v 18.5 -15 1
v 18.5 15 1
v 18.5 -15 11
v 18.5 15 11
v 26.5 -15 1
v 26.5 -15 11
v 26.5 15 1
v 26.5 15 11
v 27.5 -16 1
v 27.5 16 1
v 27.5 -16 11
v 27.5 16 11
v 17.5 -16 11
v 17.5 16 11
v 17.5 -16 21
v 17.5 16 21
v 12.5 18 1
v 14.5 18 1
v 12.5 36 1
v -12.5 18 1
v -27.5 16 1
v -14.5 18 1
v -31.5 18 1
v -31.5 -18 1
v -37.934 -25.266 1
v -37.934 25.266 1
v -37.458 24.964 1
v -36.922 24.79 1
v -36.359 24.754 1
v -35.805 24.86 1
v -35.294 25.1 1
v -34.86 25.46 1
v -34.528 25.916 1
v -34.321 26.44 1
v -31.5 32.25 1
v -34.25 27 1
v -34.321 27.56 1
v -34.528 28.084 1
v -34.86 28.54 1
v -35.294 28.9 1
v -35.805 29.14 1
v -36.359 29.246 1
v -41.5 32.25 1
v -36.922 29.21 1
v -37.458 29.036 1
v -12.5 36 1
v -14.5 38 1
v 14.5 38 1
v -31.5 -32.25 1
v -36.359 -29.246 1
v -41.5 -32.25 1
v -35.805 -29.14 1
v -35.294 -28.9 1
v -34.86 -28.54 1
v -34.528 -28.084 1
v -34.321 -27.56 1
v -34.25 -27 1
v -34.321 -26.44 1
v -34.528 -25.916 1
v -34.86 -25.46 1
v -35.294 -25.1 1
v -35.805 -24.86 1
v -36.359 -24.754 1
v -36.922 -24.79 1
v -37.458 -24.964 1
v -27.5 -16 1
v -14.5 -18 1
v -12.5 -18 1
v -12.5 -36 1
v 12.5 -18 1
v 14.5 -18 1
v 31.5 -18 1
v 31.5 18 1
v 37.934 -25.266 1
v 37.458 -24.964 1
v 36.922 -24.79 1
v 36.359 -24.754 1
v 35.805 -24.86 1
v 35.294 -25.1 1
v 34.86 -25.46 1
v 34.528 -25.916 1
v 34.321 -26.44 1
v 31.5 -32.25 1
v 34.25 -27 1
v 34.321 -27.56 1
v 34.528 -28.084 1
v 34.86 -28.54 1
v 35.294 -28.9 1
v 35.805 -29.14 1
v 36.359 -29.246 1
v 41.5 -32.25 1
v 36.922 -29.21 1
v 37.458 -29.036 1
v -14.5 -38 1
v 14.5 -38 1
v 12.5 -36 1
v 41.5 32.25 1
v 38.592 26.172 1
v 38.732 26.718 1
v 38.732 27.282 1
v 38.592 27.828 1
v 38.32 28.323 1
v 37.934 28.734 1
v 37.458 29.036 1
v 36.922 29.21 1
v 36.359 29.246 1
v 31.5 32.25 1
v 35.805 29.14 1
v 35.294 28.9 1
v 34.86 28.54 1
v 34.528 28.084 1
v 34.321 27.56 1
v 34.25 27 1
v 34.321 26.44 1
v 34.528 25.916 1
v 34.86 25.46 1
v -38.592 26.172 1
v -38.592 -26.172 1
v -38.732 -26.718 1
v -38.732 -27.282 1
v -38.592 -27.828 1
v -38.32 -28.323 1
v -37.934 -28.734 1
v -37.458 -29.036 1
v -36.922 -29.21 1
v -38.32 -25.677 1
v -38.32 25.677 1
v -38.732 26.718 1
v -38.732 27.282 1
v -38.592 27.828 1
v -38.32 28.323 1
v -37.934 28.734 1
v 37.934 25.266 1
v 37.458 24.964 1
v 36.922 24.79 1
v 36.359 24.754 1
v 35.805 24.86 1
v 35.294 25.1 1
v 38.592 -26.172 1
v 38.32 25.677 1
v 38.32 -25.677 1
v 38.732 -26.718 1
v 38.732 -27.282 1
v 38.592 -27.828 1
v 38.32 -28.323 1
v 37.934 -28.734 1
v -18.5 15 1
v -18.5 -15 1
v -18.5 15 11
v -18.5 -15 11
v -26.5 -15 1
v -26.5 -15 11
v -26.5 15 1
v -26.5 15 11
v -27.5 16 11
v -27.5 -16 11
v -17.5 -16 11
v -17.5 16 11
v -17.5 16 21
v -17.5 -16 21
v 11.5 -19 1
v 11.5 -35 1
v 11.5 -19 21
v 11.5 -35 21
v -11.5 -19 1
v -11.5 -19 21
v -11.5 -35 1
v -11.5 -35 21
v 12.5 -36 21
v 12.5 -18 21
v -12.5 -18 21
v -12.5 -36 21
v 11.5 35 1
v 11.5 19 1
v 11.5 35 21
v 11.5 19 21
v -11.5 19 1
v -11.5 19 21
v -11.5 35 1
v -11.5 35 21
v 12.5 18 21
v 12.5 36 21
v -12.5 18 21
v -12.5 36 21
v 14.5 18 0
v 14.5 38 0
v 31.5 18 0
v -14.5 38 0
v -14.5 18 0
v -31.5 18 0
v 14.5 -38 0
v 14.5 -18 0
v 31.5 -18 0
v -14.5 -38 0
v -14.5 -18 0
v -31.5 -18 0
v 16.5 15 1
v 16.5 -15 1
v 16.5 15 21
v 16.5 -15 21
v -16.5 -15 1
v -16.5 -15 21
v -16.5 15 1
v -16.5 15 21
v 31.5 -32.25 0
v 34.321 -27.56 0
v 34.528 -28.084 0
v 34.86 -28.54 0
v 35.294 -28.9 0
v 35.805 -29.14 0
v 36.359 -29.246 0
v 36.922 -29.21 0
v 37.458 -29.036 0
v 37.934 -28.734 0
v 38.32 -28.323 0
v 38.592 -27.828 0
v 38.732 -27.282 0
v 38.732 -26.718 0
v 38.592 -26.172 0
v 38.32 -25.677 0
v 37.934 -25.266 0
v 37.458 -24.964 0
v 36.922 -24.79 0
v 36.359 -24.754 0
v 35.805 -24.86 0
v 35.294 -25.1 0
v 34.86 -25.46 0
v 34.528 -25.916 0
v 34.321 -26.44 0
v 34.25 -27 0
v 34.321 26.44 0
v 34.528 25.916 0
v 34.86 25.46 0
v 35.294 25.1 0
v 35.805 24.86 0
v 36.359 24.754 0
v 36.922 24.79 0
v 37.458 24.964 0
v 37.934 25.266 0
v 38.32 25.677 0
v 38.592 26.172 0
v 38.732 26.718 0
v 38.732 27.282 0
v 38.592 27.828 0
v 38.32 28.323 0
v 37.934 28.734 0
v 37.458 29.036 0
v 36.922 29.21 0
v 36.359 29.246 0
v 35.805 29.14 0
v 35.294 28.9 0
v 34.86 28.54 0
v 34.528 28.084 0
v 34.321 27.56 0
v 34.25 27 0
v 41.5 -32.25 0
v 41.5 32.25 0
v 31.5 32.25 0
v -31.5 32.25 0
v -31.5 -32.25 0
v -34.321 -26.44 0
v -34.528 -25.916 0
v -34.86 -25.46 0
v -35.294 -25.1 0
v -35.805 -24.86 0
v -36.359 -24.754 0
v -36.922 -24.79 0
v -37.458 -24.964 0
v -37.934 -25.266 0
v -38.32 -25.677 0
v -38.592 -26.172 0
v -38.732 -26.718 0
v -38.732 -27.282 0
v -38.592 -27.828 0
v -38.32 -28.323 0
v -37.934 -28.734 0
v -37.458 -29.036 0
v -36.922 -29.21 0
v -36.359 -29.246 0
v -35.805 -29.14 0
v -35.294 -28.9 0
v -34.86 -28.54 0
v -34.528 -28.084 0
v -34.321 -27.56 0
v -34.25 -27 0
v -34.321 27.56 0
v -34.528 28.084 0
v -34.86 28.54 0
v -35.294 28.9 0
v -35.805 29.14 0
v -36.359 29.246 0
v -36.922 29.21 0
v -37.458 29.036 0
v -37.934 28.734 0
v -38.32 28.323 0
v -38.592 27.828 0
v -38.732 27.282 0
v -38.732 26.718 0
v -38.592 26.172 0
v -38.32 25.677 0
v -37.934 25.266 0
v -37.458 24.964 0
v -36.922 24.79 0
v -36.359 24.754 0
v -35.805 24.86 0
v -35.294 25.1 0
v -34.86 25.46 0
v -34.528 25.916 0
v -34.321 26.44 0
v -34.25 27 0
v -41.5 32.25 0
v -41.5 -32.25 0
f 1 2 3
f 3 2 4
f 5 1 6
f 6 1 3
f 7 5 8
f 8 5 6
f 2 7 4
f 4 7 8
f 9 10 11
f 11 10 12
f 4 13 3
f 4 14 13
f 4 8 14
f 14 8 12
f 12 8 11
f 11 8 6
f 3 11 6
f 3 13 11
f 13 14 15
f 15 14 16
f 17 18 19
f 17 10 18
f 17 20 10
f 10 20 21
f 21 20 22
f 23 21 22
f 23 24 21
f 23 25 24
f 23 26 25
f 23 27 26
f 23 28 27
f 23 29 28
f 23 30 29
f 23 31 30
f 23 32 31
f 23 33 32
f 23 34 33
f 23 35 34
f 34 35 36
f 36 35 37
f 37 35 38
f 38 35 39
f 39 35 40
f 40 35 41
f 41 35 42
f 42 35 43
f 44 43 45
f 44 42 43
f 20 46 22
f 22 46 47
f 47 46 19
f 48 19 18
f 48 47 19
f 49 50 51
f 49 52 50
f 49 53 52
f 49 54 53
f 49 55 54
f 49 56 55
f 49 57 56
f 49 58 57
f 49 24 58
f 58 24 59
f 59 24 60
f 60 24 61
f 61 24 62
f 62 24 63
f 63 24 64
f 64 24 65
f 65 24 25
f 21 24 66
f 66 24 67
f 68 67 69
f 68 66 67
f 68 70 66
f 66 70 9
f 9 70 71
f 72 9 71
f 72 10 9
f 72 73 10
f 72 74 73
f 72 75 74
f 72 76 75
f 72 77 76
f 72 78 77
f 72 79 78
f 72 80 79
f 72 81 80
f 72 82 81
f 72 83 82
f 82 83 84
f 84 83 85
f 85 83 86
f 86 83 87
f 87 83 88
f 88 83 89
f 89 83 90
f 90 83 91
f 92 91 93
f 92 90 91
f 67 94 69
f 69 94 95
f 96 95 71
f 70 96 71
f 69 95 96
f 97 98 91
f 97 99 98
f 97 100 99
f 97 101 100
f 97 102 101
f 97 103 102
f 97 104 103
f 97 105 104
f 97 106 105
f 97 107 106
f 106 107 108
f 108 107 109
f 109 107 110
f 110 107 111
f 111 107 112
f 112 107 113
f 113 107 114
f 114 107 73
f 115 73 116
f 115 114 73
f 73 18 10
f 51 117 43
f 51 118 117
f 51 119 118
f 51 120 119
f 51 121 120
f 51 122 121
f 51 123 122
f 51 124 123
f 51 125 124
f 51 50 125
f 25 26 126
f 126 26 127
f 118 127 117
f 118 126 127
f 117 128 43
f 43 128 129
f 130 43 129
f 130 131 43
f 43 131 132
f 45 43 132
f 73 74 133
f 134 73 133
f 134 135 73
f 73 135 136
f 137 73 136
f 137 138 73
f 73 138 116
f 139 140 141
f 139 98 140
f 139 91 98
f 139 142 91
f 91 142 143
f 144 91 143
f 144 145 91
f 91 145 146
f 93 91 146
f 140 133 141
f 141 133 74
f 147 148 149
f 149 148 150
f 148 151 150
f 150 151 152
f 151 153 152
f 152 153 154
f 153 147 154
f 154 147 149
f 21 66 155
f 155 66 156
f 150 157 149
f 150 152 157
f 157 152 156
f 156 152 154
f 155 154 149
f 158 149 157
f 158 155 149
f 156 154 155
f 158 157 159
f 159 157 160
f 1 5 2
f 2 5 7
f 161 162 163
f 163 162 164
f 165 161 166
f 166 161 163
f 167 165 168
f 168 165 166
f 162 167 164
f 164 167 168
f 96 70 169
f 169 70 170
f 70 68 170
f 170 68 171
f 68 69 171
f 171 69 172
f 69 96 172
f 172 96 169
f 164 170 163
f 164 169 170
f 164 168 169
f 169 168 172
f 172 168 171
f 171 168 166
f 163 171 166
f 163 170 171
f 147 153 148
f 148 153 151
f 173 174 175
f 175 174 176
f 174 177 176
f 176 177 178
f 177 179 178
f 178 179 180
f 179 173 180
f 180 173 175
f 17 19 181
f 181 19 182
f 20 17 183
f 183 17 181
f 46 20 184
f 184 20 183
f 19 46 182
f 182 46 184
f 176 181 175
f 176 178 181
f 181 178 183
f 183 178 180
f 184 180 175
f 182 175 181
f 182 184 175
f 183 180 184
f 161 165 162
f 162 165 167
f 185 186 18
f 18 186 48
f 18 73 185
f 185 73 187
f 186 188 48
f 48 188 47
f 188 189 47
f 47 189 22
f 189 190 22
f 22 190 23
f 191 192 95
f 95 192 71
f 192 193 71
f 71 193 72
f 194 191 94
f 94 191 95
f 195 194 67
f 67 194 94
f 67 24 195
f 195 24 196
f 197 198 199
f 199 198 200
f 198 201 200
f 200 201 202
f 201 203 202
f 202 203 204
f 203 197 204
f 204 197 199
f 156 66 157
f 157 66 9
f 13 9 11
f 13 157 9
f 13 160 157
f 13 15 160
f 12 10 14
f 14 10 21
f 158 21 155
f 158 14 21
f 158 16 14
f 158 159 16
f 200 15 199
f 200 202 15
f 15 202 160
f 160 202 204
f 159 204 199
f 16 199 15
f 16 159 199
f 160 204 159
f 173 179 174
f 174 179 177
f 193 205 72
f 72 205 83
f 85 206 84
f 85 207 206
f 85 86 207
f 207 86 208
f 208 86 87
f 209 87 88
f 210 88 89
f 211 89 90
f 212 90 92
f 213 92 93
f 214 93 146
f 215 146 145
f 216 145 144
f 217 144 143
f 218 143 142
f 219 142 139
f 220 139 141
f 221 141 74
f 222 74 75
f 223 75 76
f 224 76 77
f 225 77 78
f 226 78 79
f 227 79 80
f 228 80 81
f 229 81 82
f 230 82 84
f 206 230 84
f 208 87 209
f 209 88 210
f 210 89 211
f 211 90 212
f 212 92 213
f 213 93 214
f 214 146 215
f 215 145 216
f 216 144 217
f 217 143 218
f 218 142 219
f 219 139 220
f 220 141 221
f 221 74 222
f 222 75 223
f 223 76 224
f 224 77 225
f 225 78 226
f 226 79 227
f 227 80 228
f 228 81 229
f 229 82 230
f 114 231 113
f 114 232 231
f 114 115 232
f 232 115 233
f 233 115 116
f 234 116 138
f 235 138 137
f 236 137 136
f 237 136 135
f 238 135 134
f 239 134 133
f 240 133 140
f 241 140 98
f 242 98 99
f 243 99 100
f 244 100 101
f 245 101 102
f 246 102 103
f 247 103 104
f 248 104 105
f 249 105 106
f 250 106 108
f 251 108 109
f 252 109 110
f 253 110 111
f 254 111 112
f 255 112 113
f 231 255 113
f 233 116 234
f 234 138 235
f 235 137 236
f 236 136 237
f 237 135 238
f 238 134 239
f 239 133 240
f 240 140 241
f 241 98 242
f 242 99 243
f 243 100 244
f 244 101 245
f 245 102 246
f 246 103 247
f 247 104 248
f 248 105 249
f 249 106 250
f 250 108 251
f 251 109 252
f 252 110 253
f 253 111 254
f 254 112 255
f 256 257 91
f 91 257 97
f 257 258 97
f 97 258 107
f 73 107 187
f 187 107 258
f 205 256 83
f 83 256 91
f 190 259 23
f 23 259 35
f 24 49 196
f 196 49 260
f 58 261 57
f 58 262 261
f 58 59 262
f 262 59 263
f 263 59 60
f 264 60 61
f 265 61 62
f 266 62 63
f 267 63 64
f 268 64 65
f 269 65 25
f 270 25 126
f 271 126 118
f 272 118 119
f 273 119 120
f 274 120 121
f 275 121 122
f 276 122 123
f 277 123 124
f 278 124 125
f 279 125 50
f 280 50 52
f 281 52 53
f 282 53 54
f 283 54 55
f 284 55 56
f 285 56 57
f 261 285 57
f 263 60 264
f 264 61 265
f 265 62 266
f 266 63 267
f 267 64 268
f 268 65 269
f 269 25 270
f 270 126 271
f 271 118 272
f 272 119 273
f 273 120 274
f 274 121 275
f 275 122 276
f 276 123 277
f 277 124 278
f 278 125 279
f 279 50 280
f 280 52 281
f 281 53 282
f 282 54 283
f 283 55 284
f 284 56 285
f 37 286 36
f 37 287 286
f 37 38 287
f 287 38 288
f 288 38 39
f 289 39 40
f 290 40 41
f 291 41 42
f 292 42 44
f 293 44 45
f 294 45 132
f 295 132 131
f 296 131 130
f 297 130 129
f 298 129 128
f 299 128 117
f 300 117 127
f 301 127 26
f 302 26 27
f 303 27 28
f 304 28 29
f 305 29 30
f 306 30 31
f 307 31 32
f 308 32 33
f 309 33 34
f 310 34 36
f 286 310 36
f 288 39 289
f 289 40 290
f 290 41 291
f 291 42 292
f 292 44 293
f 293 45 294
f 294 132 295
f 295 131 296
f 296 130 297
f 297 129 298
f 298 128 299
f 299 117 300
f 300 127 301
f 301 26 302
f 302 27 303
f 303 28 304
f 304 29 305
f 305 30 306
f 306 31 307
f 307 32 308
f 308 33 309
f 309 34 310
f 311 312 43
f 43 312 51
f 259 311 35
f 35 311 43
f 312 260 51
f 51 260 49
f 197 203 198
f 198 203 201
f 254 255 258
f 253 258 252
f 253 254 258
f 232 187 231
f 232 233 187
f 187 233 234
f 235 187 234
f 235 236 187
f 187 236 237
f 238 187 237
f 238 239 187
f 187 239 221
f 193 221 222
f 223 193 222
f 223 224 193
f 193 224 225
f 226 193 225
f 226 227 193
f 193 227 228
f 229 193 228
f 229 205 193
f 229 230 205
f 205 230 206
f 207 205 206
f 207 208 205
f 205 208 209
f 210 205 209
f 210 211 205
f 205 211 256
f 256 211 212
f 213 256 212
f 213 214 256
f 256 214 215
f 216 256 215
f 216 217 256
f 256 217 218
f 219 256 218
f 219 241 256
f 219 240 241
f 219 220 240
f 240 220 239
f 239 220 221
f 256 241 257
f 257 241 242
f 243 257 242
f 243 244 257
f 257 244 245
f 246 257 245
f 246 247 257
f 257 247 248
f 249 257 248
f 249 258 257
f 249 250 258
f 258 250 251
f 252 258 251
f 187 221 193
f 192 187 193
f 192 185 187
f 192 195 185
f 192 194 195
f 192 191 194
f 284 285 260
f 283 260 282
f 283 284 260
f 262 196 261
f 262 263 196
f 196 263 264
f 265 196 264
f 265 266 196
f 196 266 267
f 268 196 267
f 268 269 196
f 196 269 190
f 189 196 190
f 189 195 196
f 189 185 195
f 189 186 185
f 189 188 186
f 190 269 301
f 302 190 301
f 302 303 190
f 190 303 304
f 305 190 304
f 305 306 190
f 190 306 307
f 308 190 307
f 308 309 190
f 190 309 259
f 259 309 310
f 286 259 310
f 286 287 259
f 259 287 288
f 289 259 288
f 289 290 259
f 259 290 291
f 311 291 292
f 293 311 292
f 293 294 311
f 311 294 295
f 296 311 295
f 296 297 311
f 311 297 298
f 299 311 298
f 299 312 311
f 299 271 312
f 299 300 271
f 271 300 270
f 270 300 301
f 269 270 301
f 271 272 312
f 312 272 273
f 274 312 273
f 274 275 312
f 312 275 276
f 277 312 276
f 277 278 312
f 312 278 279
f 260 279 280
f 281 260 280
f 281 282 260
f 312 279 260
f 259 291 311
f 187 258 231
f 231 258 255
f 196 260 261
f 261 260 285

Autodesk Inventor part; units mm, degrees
ref_plane "YZ Plane" through (0, 0, 0) normal (1, 0, 0) x (0, 1, 0)
ref_plane "XZ Plane" through (0, 0, 0) normal (0, 1, 0) x (-1, 0, 0)
ref_plane "XY Plane" through (0, 0, 0) normal (0, 0, 1) x (1, 0, 0)
sketch "Sketch1" plane through (0, 0, 0) normal (0, 0, 1) x (1, 0, 0)
  line L0 (-41.5, 50) -> (41.5, 50)
  line L1 (41.5, 50) -> (41.5, -50)
  line L2 (41.5, -50) -> (-41.5, -50)
  line L3 (-41.5, -50) -> (-41.5, 50)
  line L4 (31.5, 40) -> (-31.5, 40)
  line L5 (-31.5, 40) -> (-31.5, -40)
  line L6 (-31.5, -40) -> (31.5, -40)
  line L7 (31.5, -40) -> (31.5, 40)
  line L8 (-41.5, -45) -> (41.5, -45) construction
  line L9 (0, 71.7466) -> (0, -78.0681) construction
  line L10 (-60.2597, 0) -> (74.2823, 0) construction
  line L11 (-36.5, 50) -> (-36.5, -50) construction
  circle A0 centre (-36.5, -27) radius 2.25
  line L12 (-41.5, 45) -> (41.5, 45) construction
  circle A1 centre (-36.5, 45) radius 2.25
  circle A2 centre (-36.5, -45) radius 2.25
  circle A3 centre (-36.5, 27) radius 2.25
  circle A4 centre (-25, -45) radius 2.25
  circle A5 centre (25, -45) radius 2.25
  line L13 (30, 50) -> (30, -50) construction
  line L14 (-30, 50) -> (-30, -50) construction
  line L15 (-31, -38) -> (31, -38)
  line L16 (31, -38) -> (31, -52)
  line L17 (31, -52) -> (-31, -52)
  line L18 (-31, -52) -> (-31, -38)
  line L19 (-31.5, -40) -> (-16.5, -40)
  line L20 (-16.5, -40) -> (-16.5, -20)
  line L21 (-16.5, -20) -> (-31.5, -20)
  line L22 (-31.5, -20) -> (-31.5, -40)
  line L23 (-26.5, -26) -> (-21.5, -26) construction
  line L24 (-26.5, -27.5) -> (-21.5, -27.5)
  line L25 (-21.5, -24.5) -> (-26.5, -24.5)
  arc A6 (-26.5, -24.5) -> (-26.5, -27.5) centre (-26.5, -26) ccw
  arc A7 (-21.5, -27.5) -> (-21.5, -24.5) centre (-21.5, -26) ccw
  line L26 (-26.5, -34) -> (-21.5, -34) construction
  line L27 (-26.5, -35.5) -> (-21.5, -35.5)
  line L28 (-21.5, -32.5) -> (-26.5, -32.5)
  arc A8 (-26.5, -32.5) -> (-26.5, -35.5) centre (-26.5, -34) ccw
  arc A9 (-21.5, -35.5) -> (-21.5, -32.5) centre (-21.5, -34) ccw
  point P0 (0, 0)
  point P1 (0, 50)
  point P2 (41.5, 0)
  point P3 (0, 45)
  point P4 (-24, -26)
  point P5 (-24, -20)
  point P6 (-16.5, -30)
  point P7 (-24, -34)
  dimension "d0" = 83
  dimension "d1" = 100
  dimension "d5" = 5
  dimension "d6" = 5
  dimension "d9" = 5
  dimension "d12" = 4.5
  dimension "d17" = 5
  dimension "d41" = 4.5
  dimension "d42" = 4.5
  dimension "d87" = 4.5
  dimension "d89" = 4.5
  dimension "d90" = 4.5
  dimension "d91" = 30
  dimension "d92" = 30
  dimension "d93" = 5
  dimension "d94" = 5
  dimension "d97" = 1
  dimension "d98" = 2
  dimension "d99" = 2
  dimension "d100" = 1
  dimension "d103" = 15
  dimension "d104" = 20
  dimension "d105" = 5
  dimension "d106" = 3
  dimension "d109" = 5
  dimension "d110" = 3
  dimension "d112" = 6
  dimension "d113" = 6
  dimension "d141" = 27
  dimension "d142" = 27
sketch "Sketch4" plane through (0, 0, 0) normal (0, 0, 1) x (1, 0, 0)
  circle A0 centre (-36.5, 27) radius 2.25 projected
  circle A1 centre (-36.5, -27) radius 2.25 projected
  line L0 (-31.5, 40) -> (-31.5, -40) projected
  line L1 (-41.5, -50) -> (-41.5, 50) projected
  line L2 (-41.5, -32.25) -> (-31.5, -32.25)
  line L3 (-31.5, -32.25) -> (-31.5, 32.25)
  line L4 (-31.5, 32.25) -> (-41.5, 32.25)
  line L5 (-41.5, 32.25) -> (-41.5, -32.25)
  line L6 (31.5, -40) -> (31.5, 40) projected
  line L7 (41.5, 50) -> (41.5, -50) projected
  line L8 (-31.5, -18) -> (31.5, -18)
  line L9 (31.5, -18) -> (31.5, 0)
  line L10 (31.5, 0) -> (-31.5, 0)
  line L11 (-31.5, 0) -> (-31.5, -18)
  line L12 (-16.5, -20) -> (-31.5, -20) projected
  line L13 (-31.5, -40) -> (31.5, -40) projected
  line L14 (-16.5, -40) -> (-16.5, -20) projected
  line L15 (-14.5, -18) -> (0, -18)
  line L16 (0, -18) -> (0, -38)
  line L17 (0, -38) -> (-14.5, -38)
  line L18 (-14.5, -38) -> (-14.5, -18)
  point P0 (0, 0)
  point P1 (0, 0)
  dimension "d116" = 3
  dimension "d117" = 3
  dimension "d118" = 2
  dimension "d130" = 2
  dimension "d131" = 2
extrude "Extrusion11" add sketch "Sketch4" along normal blind 1 contours L0 L2 L1 L4
extrude "Extrusion12" add sketch "Sketch4" along normal blind 1 contours L10 L6 L8 L0
mirror "Mirror4" about plane through (0, 0, 0) normal (0, 1, 0) of "Extrusion12"
mirror "Mirror5" about plane through (0, 0, 0) normal (1, 0, 0) of "Extrusion11"
sketch "Sketch6" plane through (0, 0, 1) normal (0, 0, 1) x (1, 0, 0)
  line L0 (-17.5, 16) -> (17.5, 16)
  line L1 (17.5, 16) -> (17.5, -16)
  line L2 (17.5, -16) -> (-17.5, -16)
  line L3 (-17.5, -16) -> (-17.5, 16)
  line L4 (16.5, 15) -> (-16.5, 15)
  line L5 (-16.5, 15) -> (-16.5, -15)
  line L6 (-16.5, -15) -> (16.5, -15)
  line L7 (16.5, -15) -> (16.5, 15)
  circle A0 centre (36.5, 27) radius 2.25 projected
  circle A1 centre (36.5, -27) radius 2.25 projected
  circle A2 centre (-36.5, -27) radius 2.25 projected
  circle A3 centre (-36.5, 27) radius 2.25 projected
  line L8 (-41.5, -32.25) -> (-31.5, -32.25) projected
  line L9 (-31.5, -32.25) -> (-31.5, -18) projected
  line L10 (-31.5, -18) -> (31.5, -18) projected
  line L11 (31.5, -32.25) -> (31.5, -18) projected
  line L12 (41.5, -32.25) -> (31.5, -32.25) projected
  line L13 (41.5, 32.25) -> (41.5, -32.25) projected
  line L14 (31.5, 32.25) -> (41.5, 32.25) projected
  line L15 (31.5, 18) -> (31.5, 32.25) projected
  line L16 (-31.5, 18) -> (31.5, 18) projected
  line L17 (-31.5, 18) -> (-31.5, 32.25) projected
  line L18 (-31.5, 32.25) -> (-41.5, 32.25) projected
  line L19 (-41.5, 32.25) -> (-41.5, -32.25) projected
  line L20 (-27.5, 16) -> (-17.5, 16)
  line L21 (-17.5, 16) -> (-17.5, -16)
  line L22 (-17.5, -16) -> (-27.5, -16)
  line L23 (-27.5, -16) -> (-27.5, 16)
  line L24 (-18.5, 15) -> (-26.5, 15)
  line L25 (-26.5, 15) -> (-26.5, -15)
  line L26 (-26.5, -15) -> (-18.5, -15)
  line L27 (-18.5, -15) -> (-18.5, 15)
  point P0 (0, 0)
  point P1 (0, 16)
  dimension "d123" = 1
  dimension "d124" = 2
  dimension "d126" = 2
  dimension "d143" = 14
  dimension "d144" = 2
  dimension "d145" = 2
  dimension "d146" = 1
  dimension "d147" = 10
extrude "Extrusion13" add sketch "Sketch6" along normal blind 20 contours L0 L1 L2 L3
extrude "Extrusion14" add sketch "Sketch4" along normal blind 1 contours L8 L16 L17 L18
mirror "Mirror6" about plane through (0, 0, 0) normal (1, 0, 0) of "Extrusion14"
mirror "Mirror7" about plane through (0, 0, 0) normal (0, 1, 0) of "Extrusion14", "Mirror6"
sketch "Sketch7" plane through (0, 0, 1) normal (0, 0, 1) x (1, 0, 0)
  line L0 (-41.5, -32.25) -> (-31.5, -32.25) projected
  line L1 (-31.5, -32.25) -> (-31.5, -18) projected
  line L2 (-31.5, -18) -> (-14.5, -18) projected
  line L3 (-14.5, -18) -> (-14.5, -38) projected
  line L4 (-14.5, -38) -> (14.5, -38) projected
  line L5 (14.5, -18) -> (14.5, -38) projected
  line L6 (14.5, -18) -> (31.5, -18) projected
  line L7 (31.5, -32.25) -> (31.5, -18) projected
  line L8 (41.5, -32.25) -> (31.5, -32.25) projected
  line L9 (41.5, 32.25) -> (41.5, -32.25) projected
  line L10 (31.5, 32.25) -> (41.5, 32.25) projected
  line L11 (31.5, 18) -> (31.5, 32.25) projected
  line L12 (14.5, 18) -> (31.5, 18) projected
  line L13 (14.5, 18) -> (14.5, 38) projected
  line L14 (14.5, 38) -> (-14.5, 38) projected
  line L15 (-14.5, 18) -> (-14.5, 38) projected
  line L16 (-31.5, 18) -> (-14.5, 18) projected
  line L17 (-31.5, 18) -> (-31.5, 32.25) projected
  line L18 (-31.5, 32.25) -> (-41.5, 32.25) projected
  line L19 (-41.5, 32.25) -> (-41.5, -32.25) projected
  circle A0 centre (-36.5, 27) radius 2.25 projected
  circle A1 centre (-36.5, -27) radius 2.25 projected
  circle A2 centre (36.5, -27) radius 2.25 projected
  circle A3 centre (36.5, 27) radius 2.25 projected
  line L20 (17.5, 16) -> (17.5, -16) projected
  line L21 (17.5, -16) -> (-17.5, -16) projected
  line L22 (-17.5, -16) -> (-17.5, 16) projected
  line L23 (-17.5, 16) -> (17.5, 16) projected
  line L24 (-12.5, 36) -> (12.5, 36)
  line L25 (12.5, 36) -> (12.5, 18)
  line L26 (12.5, 18) -> (-12.5, 18)
  line L27 (-12.5, 18) -> (-12.5, 36)
  line L28 (11.5, 35) -> (-11.5, 35)
  line L29 (-11.5, 35) -> (-11.5, 19)
  line L30 (-11.5, 19) -> (11.5, 19)
  line L31 (11.5, 19) -> (11.5, 35)
  point P0 (0, 0)
  dimension "d134" = 1
  dimension "d135" = 2
  dimension "d136" = 2
  dimension "d137" = 2
  dimension "d138" = 2
extrude "Extrusion15" add sketch "Sketch7" along normal blind 20 contours L24 L25 L26 L27
mirror "Mirror8" about plane through (0, 0, 0) normal (0, 1, 0) of "Extrusion15"
extrude "Extrusion16" add sketch "Sketch6" along normal blind 10 contours L3 L22 L23 L20
mirror "Mirror9" about plane through (0, 0, 0) normal (1, 0, 0) of "Extrusion16"
equation "\"d12\" = screw"
equation "\"d41\" = screw"
equation "\"d42\" = screw"
equation "\"d87\" = screw"
equation "\"d89\" = screw"
equation "\"d90\" = screw"
equation "\"screw\" = 4.5"
properties part number "Side" material "PC/ABS Plastic"
